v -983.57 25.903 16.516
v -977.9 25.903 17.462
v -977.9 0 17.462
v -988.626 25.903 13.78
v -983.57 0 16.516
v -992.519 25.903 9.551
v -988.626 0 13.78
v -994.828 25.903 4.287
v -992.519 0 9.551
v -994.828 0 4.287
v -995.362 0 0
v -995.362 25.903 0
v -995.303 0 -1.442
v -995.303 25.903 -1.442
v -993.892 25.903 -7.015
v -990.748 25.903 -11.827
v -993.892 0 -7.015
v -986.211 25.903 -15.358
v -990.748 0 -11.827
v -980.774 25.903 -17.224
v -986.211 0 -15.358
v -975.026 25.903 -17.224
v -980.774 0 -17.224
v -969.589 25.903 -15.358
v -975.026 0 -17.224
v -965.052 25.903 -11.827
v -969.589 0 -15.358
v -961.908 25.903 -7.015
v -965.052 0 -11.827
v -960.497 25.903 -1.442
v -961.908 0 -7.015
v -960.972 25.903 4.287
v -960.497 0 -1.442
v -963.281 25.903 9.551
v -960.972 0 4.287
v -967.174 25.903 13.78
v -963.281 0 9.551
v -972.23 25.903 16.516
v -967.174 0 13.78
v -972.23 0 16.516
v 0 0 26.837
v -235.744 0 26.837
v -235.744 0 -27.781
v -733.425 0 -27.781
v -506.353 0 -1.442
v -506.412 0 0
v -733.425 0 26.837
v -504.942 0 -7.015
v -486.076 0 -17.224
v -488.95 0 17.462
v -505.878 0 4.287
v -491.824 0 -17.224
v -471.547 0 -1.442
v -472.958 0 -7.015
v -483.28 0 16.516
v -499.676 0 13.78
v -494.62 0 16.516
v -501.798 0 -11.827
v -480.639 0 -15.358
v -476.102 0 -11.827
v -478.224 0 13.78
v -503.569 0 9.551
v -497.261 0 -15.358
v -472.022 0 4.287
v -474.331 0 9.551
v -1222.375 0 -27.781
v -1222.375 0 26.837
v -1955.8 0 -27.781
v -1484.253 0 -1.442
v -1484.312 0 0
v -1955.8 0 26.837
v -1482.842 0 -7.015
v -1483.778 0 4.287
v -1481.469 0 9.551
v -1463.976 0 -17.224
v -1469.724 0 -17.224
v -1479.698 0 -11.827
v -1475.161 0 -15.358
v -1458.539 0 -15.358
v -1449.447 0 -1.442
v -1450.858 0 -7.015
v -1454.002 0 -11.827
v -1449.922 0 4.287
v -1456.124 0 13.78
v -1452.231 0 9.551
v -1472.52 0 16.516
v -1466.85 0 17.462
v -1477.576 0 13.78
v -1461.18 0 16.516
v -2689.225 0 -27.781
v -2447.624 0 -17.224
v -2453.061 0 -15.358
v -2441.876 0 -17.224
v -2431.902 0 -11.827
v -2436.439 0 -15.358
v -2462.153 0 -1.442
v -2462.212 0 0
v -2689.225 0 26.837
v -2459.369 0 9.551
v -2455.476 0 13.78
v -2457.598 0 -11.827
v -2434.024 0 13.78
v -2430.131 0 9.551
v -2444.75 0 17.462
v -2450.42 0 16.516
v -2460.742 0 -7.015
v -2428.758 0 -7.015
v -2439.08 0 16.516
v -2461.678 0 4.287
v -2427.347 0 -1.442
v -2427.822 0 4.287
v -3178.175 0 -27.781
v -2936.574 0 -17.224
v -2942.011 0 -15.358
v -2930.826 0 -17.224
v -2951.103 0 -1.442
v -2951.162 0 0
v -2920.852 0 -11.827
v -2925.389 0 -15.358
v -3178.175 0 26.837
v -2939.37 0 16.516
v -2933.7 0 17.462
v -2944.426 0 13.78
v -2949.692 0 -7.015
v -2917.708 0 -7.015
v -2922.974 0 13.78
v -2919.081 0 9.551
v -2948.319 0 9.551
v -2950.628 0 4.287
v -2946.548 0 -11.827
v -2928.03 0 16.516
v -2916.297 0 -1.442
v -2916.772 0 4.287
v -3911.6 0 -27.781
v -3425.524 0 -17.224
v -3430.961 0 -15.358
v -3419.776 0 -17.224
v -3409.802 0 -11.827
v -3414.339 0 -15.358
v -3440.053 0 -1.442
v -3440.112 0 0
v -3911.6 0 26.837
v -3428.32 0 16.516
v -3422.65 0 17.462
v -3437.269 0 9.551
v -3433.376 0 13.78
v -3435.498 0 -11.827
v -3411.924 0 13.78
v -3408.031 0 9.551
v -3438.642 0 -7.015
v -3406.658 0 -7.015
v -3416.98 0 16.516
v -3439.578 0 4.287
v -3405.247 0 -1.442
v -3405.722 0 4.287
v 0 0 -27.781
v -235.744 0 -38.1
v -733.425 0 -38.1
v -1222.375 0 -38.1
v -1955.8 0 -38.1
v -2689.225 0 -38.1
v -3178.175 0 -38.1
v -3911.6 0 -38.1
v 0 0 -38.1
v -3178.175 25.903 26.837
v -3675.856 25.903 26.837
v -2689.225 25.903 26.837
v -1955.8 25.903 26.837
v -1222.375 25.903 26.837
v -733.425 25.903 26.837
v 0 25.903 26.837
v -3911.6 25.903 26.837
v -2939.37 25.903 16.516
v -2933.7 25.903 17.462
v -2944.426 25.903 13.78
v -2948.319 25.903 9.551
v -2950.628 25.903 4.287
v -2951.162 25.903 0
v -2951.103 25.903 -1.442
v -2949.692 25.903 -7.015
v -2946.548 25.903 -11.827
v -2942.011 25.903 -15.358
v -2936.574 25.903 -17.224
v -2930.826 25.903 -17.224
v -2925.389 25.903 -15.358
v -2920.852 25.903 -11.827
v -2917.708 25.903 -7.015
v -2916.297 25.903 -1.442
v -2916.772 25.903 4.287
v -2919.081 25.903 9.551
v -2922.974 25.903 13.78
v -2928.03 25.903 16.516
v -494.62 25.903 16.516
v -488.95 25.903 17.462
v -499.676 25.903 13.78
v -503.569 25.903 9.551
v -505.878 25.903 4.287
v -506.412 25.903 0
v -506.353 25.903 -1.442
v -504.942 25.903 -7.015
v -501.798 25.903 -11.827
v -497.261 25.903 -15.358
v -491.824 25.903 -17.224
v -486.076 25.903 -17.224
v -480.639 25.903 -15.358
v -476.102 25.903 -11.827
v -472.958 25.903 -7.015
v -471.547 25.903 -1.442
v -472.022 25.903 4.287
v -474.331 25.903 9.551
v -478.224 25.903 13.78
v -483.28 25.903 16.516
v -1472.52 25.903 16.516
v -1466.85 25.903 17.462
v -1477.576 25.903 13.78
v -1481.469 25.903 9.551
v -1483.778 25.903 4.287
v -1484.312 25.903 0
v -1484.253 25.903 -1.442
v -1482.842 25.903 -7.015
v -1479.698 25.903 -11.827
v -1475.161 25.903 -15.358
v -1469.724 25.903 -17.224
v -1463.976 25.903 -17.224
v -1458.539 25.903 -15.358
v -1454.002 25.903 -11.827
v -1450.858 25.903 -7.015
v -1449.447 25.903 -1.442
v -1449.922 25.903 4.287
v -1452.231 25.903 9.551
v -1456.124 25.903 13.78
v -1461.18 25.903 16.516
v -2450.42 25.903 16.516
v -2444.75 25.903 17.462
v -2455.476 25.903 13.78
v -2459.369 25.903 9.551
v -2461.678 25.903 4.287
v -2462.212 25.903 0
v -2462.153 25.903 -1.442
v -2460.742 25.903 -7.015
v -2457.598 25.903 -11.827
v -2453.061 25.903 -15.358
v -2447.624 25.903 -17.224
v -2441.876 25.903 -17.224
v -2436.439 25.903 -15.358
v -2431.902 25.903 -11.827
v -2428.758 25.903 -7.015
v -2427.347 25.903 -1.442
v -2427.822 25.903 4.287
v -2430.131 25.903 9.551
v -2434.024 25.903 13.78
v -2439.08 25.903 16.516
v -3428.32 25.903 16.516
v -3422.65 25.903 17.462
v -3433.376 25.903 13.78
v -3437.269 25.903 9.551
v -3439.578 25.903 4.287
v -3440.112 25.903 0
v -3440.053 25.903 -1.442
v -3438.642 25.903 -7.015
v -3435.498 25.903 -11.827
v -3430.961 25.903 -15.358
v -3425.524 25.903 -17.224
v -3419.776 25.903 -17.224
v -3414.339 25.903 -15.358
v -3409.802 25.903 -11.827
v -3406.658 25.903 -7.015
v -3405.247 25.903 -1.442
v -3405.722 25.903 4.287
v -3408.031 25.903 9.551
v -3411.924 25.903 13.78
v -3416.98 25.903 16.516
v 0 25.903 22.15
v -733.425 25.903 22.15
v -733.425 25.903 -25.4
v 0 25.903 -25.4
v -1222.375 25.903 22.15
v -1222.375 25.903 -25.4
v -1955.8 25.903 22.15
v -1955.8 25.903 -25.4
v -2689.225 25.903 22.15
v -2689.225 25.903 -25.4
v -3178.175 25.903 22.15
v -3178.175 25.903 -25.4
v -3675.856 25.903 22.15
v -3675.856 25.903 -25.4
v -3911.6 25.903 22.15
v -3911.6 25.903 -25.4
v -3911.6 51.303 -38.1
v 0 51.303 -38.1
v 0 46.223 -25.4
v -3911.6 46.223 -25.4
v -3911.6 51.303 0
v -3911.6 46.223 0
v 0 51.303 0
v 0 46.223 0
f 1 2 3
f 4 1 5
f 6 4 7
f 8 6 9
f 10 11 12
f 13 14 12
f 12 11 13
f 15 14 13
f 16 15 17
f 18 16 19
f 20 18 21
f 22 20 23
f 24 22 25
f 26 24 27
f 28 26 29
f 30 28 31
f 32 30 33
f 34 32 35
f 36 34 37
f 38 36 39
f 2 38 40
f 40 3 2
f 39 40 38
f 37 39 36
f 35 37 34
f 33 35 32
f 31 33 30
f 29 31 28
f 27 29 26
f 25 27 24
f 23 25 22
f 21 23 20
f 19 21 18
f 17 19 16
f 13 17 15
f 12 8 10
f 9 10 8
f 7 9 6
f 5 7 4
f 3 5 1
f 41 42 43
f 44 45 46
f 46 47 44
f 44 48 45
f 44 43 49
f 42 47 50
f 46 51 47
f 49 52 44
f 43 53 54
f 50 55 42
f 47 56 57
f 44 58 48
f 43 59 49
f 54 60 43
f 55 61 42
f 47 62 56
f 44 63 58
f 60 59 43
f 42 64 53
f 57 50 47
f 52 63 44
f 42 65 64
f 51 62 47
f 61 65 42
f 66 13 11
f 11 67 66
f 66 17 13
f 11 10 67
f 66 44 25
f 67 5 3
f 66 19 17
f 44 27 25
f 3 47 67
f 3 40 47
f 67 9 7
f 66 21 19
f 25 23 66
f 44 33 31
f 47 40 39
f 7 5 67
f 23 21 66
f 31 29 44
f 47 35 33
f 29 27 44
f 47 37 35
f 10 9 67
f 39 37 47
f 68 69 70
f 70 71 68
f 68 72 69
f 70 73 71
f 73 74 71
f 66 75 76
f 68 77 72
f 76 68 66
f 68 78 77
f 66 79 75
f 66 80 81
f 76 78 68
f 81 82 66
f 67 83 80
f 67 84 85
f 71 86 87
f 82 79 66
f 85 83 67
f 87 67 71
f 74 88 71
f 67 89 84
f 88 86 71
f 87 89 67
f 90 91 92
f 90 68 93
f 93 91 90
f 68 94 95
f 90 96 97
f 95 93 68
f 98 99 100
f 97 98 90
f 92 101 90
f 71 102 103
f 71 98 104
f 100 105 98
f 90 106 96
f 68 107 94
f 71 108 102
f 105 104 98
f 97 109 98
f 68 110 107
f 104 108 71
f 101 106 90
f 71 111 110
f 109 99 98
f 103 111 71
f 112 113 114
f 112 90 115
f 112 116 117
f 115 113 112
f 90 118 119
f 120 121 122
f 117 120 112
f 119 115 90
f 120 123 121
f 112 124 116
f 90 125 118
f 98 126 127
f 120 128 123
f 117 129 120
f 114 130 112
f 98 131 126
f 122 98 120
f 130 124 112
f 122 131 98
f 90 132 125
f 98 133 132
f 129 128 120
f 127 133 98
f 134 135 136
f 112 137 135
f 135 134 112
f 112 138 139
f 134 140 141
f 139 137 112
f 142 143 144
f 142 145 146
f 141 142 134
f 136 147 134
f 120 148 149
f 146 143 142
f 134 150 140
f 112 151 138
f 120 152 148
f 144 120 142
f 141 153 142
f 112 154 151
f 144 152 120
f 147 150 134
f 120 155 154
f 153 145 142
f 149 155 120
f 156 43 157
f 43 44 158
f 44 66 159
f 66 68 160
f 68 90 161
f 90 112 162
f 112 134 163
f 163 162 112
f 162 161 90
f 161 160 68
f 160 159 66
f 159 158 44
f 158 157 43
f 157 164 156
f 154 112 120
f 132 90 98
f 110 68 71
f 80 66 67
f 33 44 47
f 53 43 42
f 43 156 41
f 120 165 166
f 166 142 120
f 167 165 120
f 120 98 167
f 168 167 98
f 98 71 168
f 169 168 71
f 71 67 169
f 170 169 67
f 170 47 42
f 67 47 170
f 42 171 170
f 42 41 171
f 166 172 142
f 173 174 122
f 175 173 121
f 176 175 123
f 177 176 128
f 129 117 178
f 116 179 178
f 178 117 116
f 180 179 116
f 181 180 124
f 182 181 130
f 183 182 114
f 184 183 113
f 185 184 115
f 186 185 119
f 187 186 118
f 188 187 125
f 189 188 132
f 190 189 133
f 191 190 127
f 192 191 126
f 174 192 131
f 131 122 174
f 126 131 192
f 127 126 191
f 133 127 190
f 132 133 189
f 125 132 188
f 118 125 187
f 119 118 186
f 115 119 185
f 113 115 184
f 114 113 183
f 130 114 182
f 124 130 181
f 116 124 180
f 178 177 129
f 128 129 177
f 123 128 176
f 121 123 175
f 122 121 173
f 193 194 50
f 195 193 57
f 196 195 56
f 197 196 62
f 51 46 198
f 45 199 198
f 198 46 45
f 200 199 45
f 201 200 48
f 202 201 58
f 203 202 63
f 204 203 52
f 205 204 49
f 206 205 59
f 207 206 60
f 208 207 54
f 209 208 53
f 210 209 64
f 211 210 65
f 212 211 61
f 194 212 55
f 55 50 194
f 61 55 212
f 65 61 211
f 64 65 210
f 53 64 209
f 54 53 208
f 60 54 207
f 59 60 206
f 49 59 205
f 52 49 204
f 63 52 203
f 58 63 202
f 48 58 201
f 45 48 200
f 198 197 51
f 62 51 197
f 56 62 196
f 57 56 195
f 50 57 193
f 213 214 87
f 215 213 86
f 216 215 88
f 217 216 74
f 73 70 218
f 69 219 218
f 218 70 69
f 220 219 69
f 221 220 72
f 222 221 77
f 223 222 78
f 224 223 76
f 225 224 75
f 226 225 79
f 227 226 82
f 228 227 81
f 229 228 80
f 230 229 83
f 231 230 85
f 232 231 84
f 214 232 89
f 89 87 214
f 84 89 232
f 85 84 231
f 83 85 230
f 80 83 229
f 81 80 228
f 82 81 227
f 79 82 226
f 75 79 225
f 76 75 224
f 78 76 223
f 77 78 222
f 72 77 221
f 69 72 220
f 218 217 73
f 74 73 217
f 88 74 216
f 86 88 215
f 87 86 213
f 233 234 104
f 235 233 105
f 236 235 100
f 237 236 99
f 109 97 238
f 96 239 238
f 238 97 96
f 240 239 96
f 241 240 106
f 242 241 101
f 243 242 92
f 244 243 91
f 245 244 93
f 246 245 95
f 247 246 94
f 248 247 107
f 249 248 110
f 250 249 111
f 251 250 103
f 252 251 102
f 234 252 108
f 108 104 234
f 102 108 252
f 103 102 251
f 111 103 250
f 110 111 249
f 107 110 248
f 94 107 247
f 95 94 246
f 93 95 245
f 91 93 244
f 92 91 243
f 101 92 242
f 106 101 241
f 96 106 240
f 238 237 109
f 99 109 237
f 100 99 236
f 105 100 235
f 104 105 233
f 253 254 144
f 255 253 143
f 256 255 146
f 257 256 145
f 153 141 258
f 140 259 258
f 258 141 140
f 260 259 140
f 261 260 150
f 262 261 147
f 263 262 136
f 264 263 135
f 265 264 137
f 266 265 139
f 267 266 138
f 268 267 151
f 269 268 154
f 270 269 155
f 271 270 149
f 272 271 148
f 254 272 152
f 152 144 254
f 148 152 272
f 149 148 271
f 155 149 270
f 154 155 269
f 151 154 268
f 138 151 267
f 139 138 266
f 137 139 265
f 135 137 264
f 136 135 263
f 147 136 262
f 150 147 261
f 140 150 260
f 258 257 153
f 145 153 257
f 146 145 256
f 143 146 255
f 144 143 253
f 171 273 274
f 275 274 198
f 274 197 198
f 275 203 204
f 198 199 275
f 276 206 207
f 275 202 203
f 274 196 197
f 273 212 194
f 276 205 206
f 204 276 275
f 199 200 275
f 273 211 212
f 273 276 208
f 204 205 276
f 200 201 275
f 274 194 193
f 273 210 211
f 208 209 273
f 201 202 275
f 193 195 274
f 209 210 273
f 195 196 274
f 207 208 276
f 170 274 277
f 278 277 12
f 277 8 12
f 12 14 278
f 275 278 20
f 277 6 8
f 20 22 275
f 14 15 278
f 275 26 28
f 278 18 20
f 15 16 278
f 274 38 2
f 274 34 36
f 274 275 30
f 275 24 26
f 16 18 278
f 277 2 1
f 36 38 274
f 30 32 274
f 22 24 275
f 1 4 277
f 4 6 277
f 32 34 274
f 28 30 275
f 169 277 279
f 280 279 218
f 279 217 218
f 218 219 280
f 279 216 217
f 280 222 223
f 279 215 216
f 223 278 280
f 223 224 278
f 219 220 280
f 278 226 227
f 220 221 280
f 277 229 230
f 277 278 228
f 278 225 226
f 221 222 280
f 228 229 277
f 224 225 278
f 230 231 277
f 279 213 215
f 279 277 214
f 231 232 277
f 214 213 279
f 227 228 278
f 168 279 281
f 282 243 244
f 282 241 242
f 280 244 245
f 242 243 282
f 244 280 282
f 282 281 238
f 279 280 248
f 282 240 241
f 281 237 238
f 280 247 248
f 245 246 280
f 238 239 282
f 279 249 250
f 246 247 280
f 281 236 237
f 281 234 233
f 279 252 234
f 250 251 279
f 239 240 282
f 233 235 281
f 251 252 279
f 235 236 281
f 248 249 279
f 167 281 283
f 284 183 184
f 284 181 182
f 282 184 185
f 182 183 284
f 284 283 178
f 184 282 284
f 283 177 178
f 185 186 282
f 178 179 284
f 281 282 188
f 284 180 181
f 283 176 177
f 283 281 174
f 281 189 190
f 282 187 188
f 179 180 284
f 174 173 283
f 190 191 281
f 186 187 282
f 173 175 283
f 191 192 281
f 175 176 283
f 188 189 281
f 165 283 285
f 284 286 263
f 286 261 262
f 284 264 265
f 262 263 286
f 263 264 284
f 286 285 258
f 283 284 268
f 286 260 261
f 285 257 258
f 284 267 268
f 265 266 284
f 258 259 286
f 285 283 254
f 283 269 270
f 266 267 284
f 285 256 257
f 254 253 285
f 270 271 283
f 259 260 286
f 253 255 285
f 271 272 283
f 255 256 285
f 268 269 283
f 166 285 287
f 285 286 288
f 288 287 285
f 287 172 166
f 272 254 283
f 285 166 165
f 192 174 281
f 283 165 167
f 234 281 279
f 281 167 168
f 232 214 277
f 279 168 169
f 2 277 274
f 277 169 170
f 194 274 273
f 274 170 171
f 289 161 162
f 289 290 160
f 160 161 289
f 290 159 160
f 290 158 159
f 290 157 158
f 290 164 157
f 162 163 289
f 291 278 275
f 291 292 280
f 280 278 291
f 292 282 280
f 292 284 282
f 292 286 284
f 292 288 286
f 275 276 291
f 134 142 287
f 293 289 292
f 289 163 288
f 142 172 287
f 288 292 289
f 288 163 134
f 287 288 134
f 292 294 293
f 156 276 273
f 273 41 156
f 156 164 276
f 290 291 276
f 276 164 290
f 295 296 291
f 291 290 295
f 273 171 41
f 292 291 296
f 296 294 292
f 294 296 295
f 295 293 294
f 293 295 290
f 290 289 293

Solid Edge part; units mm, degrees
sketch "Sketch1" plane through (-1955.8, 6.35, 0) normal (-1, 0, 0) x (0, 0, 1)
  line L0 (-38.1, -6.35) -> (38.1, -6.35)
  line L1 (38.1, -6.35) -> (38.1, 19.5531)
  line L2 (38.1, 19.5531) -> (-25.4, 19.5531)
  line L3 (-25.4, 19.5531) -> (-25.4, 39.8731)
  line L4 (-25.4, 39.8731) -> (0, 39.8731)
  line L5 (0, 39.8731) -> (0, 44.9531)
  line L6 (0, 44.9531) -> (-38.1, 44.9531)
  line L7 (-38.1, 44.9531) -> (-38.1, -6.35)
extrude "Protrusion1" add sketch "Sketch1" along normal mid plane 3911.6
sketch "Sketch2" plane through (-1955.8, 25.9031, 6.35) normal (0, 1, 0) x (-1, 0, 0)
  circle A0 centre (-977.9, -6.35) radius 17.4625
  circle A1 centre (977.9, -6.35) radius 17.4625
extrude "ExtrudedCutout_4" cut sketch "Sketch2" against normal blind 161.8857 and the other way blind 5.442
sketch "Sketch3" plane through (-1955.8, 25.9031, 6.35) normal (0, 1, 0) x (-1, 0, 0)
  circle A0 centre (-1466.85, -6.35) radius 17.4625
  circle A1 centre (-488.95, -6.35) radius 17.4625
extrude "ExtrudedCutout_5" cut sketch "Sketch3" against normal blind 818.2854 and the other way blind 15.4522
sketch "Sketch4" plane through (-1955.8, 25.9031, 6.35) normal (0, 1, 0) x (-1, 0, 0)
  circle A0 centre (488.95, -6.35) radius 17.4625
  circle A1 centre (1466.85, -6.35) radius 17.4625
extrude "ExtrudedCutout_6" cut sketch "Sketch4" against normal blind 531.919 and the other way blind 6.6889
sketch "Sketch5" plane through (-3911.6, 25.6516, 0) normal (-1, 0, 0) x (0, -1, 0)
  line L0 (-0.2516, 26.8371) -> (25.6516, 26.8371)
  line L1 (25.6516, 26.8371) -> (25.6516, 38.1)
  line L2 (25.6516, 38.1) -> (-0.2516, 38.1)
  line L3 (-0.2516, 38.1) -> (-0.2516, 26.8371)
extrude "ExtrudedCutout_7" cut sketch "Sketch5" against normal blind 4684.9191 and the other way blind 1145.5726
properties material "Steel"
